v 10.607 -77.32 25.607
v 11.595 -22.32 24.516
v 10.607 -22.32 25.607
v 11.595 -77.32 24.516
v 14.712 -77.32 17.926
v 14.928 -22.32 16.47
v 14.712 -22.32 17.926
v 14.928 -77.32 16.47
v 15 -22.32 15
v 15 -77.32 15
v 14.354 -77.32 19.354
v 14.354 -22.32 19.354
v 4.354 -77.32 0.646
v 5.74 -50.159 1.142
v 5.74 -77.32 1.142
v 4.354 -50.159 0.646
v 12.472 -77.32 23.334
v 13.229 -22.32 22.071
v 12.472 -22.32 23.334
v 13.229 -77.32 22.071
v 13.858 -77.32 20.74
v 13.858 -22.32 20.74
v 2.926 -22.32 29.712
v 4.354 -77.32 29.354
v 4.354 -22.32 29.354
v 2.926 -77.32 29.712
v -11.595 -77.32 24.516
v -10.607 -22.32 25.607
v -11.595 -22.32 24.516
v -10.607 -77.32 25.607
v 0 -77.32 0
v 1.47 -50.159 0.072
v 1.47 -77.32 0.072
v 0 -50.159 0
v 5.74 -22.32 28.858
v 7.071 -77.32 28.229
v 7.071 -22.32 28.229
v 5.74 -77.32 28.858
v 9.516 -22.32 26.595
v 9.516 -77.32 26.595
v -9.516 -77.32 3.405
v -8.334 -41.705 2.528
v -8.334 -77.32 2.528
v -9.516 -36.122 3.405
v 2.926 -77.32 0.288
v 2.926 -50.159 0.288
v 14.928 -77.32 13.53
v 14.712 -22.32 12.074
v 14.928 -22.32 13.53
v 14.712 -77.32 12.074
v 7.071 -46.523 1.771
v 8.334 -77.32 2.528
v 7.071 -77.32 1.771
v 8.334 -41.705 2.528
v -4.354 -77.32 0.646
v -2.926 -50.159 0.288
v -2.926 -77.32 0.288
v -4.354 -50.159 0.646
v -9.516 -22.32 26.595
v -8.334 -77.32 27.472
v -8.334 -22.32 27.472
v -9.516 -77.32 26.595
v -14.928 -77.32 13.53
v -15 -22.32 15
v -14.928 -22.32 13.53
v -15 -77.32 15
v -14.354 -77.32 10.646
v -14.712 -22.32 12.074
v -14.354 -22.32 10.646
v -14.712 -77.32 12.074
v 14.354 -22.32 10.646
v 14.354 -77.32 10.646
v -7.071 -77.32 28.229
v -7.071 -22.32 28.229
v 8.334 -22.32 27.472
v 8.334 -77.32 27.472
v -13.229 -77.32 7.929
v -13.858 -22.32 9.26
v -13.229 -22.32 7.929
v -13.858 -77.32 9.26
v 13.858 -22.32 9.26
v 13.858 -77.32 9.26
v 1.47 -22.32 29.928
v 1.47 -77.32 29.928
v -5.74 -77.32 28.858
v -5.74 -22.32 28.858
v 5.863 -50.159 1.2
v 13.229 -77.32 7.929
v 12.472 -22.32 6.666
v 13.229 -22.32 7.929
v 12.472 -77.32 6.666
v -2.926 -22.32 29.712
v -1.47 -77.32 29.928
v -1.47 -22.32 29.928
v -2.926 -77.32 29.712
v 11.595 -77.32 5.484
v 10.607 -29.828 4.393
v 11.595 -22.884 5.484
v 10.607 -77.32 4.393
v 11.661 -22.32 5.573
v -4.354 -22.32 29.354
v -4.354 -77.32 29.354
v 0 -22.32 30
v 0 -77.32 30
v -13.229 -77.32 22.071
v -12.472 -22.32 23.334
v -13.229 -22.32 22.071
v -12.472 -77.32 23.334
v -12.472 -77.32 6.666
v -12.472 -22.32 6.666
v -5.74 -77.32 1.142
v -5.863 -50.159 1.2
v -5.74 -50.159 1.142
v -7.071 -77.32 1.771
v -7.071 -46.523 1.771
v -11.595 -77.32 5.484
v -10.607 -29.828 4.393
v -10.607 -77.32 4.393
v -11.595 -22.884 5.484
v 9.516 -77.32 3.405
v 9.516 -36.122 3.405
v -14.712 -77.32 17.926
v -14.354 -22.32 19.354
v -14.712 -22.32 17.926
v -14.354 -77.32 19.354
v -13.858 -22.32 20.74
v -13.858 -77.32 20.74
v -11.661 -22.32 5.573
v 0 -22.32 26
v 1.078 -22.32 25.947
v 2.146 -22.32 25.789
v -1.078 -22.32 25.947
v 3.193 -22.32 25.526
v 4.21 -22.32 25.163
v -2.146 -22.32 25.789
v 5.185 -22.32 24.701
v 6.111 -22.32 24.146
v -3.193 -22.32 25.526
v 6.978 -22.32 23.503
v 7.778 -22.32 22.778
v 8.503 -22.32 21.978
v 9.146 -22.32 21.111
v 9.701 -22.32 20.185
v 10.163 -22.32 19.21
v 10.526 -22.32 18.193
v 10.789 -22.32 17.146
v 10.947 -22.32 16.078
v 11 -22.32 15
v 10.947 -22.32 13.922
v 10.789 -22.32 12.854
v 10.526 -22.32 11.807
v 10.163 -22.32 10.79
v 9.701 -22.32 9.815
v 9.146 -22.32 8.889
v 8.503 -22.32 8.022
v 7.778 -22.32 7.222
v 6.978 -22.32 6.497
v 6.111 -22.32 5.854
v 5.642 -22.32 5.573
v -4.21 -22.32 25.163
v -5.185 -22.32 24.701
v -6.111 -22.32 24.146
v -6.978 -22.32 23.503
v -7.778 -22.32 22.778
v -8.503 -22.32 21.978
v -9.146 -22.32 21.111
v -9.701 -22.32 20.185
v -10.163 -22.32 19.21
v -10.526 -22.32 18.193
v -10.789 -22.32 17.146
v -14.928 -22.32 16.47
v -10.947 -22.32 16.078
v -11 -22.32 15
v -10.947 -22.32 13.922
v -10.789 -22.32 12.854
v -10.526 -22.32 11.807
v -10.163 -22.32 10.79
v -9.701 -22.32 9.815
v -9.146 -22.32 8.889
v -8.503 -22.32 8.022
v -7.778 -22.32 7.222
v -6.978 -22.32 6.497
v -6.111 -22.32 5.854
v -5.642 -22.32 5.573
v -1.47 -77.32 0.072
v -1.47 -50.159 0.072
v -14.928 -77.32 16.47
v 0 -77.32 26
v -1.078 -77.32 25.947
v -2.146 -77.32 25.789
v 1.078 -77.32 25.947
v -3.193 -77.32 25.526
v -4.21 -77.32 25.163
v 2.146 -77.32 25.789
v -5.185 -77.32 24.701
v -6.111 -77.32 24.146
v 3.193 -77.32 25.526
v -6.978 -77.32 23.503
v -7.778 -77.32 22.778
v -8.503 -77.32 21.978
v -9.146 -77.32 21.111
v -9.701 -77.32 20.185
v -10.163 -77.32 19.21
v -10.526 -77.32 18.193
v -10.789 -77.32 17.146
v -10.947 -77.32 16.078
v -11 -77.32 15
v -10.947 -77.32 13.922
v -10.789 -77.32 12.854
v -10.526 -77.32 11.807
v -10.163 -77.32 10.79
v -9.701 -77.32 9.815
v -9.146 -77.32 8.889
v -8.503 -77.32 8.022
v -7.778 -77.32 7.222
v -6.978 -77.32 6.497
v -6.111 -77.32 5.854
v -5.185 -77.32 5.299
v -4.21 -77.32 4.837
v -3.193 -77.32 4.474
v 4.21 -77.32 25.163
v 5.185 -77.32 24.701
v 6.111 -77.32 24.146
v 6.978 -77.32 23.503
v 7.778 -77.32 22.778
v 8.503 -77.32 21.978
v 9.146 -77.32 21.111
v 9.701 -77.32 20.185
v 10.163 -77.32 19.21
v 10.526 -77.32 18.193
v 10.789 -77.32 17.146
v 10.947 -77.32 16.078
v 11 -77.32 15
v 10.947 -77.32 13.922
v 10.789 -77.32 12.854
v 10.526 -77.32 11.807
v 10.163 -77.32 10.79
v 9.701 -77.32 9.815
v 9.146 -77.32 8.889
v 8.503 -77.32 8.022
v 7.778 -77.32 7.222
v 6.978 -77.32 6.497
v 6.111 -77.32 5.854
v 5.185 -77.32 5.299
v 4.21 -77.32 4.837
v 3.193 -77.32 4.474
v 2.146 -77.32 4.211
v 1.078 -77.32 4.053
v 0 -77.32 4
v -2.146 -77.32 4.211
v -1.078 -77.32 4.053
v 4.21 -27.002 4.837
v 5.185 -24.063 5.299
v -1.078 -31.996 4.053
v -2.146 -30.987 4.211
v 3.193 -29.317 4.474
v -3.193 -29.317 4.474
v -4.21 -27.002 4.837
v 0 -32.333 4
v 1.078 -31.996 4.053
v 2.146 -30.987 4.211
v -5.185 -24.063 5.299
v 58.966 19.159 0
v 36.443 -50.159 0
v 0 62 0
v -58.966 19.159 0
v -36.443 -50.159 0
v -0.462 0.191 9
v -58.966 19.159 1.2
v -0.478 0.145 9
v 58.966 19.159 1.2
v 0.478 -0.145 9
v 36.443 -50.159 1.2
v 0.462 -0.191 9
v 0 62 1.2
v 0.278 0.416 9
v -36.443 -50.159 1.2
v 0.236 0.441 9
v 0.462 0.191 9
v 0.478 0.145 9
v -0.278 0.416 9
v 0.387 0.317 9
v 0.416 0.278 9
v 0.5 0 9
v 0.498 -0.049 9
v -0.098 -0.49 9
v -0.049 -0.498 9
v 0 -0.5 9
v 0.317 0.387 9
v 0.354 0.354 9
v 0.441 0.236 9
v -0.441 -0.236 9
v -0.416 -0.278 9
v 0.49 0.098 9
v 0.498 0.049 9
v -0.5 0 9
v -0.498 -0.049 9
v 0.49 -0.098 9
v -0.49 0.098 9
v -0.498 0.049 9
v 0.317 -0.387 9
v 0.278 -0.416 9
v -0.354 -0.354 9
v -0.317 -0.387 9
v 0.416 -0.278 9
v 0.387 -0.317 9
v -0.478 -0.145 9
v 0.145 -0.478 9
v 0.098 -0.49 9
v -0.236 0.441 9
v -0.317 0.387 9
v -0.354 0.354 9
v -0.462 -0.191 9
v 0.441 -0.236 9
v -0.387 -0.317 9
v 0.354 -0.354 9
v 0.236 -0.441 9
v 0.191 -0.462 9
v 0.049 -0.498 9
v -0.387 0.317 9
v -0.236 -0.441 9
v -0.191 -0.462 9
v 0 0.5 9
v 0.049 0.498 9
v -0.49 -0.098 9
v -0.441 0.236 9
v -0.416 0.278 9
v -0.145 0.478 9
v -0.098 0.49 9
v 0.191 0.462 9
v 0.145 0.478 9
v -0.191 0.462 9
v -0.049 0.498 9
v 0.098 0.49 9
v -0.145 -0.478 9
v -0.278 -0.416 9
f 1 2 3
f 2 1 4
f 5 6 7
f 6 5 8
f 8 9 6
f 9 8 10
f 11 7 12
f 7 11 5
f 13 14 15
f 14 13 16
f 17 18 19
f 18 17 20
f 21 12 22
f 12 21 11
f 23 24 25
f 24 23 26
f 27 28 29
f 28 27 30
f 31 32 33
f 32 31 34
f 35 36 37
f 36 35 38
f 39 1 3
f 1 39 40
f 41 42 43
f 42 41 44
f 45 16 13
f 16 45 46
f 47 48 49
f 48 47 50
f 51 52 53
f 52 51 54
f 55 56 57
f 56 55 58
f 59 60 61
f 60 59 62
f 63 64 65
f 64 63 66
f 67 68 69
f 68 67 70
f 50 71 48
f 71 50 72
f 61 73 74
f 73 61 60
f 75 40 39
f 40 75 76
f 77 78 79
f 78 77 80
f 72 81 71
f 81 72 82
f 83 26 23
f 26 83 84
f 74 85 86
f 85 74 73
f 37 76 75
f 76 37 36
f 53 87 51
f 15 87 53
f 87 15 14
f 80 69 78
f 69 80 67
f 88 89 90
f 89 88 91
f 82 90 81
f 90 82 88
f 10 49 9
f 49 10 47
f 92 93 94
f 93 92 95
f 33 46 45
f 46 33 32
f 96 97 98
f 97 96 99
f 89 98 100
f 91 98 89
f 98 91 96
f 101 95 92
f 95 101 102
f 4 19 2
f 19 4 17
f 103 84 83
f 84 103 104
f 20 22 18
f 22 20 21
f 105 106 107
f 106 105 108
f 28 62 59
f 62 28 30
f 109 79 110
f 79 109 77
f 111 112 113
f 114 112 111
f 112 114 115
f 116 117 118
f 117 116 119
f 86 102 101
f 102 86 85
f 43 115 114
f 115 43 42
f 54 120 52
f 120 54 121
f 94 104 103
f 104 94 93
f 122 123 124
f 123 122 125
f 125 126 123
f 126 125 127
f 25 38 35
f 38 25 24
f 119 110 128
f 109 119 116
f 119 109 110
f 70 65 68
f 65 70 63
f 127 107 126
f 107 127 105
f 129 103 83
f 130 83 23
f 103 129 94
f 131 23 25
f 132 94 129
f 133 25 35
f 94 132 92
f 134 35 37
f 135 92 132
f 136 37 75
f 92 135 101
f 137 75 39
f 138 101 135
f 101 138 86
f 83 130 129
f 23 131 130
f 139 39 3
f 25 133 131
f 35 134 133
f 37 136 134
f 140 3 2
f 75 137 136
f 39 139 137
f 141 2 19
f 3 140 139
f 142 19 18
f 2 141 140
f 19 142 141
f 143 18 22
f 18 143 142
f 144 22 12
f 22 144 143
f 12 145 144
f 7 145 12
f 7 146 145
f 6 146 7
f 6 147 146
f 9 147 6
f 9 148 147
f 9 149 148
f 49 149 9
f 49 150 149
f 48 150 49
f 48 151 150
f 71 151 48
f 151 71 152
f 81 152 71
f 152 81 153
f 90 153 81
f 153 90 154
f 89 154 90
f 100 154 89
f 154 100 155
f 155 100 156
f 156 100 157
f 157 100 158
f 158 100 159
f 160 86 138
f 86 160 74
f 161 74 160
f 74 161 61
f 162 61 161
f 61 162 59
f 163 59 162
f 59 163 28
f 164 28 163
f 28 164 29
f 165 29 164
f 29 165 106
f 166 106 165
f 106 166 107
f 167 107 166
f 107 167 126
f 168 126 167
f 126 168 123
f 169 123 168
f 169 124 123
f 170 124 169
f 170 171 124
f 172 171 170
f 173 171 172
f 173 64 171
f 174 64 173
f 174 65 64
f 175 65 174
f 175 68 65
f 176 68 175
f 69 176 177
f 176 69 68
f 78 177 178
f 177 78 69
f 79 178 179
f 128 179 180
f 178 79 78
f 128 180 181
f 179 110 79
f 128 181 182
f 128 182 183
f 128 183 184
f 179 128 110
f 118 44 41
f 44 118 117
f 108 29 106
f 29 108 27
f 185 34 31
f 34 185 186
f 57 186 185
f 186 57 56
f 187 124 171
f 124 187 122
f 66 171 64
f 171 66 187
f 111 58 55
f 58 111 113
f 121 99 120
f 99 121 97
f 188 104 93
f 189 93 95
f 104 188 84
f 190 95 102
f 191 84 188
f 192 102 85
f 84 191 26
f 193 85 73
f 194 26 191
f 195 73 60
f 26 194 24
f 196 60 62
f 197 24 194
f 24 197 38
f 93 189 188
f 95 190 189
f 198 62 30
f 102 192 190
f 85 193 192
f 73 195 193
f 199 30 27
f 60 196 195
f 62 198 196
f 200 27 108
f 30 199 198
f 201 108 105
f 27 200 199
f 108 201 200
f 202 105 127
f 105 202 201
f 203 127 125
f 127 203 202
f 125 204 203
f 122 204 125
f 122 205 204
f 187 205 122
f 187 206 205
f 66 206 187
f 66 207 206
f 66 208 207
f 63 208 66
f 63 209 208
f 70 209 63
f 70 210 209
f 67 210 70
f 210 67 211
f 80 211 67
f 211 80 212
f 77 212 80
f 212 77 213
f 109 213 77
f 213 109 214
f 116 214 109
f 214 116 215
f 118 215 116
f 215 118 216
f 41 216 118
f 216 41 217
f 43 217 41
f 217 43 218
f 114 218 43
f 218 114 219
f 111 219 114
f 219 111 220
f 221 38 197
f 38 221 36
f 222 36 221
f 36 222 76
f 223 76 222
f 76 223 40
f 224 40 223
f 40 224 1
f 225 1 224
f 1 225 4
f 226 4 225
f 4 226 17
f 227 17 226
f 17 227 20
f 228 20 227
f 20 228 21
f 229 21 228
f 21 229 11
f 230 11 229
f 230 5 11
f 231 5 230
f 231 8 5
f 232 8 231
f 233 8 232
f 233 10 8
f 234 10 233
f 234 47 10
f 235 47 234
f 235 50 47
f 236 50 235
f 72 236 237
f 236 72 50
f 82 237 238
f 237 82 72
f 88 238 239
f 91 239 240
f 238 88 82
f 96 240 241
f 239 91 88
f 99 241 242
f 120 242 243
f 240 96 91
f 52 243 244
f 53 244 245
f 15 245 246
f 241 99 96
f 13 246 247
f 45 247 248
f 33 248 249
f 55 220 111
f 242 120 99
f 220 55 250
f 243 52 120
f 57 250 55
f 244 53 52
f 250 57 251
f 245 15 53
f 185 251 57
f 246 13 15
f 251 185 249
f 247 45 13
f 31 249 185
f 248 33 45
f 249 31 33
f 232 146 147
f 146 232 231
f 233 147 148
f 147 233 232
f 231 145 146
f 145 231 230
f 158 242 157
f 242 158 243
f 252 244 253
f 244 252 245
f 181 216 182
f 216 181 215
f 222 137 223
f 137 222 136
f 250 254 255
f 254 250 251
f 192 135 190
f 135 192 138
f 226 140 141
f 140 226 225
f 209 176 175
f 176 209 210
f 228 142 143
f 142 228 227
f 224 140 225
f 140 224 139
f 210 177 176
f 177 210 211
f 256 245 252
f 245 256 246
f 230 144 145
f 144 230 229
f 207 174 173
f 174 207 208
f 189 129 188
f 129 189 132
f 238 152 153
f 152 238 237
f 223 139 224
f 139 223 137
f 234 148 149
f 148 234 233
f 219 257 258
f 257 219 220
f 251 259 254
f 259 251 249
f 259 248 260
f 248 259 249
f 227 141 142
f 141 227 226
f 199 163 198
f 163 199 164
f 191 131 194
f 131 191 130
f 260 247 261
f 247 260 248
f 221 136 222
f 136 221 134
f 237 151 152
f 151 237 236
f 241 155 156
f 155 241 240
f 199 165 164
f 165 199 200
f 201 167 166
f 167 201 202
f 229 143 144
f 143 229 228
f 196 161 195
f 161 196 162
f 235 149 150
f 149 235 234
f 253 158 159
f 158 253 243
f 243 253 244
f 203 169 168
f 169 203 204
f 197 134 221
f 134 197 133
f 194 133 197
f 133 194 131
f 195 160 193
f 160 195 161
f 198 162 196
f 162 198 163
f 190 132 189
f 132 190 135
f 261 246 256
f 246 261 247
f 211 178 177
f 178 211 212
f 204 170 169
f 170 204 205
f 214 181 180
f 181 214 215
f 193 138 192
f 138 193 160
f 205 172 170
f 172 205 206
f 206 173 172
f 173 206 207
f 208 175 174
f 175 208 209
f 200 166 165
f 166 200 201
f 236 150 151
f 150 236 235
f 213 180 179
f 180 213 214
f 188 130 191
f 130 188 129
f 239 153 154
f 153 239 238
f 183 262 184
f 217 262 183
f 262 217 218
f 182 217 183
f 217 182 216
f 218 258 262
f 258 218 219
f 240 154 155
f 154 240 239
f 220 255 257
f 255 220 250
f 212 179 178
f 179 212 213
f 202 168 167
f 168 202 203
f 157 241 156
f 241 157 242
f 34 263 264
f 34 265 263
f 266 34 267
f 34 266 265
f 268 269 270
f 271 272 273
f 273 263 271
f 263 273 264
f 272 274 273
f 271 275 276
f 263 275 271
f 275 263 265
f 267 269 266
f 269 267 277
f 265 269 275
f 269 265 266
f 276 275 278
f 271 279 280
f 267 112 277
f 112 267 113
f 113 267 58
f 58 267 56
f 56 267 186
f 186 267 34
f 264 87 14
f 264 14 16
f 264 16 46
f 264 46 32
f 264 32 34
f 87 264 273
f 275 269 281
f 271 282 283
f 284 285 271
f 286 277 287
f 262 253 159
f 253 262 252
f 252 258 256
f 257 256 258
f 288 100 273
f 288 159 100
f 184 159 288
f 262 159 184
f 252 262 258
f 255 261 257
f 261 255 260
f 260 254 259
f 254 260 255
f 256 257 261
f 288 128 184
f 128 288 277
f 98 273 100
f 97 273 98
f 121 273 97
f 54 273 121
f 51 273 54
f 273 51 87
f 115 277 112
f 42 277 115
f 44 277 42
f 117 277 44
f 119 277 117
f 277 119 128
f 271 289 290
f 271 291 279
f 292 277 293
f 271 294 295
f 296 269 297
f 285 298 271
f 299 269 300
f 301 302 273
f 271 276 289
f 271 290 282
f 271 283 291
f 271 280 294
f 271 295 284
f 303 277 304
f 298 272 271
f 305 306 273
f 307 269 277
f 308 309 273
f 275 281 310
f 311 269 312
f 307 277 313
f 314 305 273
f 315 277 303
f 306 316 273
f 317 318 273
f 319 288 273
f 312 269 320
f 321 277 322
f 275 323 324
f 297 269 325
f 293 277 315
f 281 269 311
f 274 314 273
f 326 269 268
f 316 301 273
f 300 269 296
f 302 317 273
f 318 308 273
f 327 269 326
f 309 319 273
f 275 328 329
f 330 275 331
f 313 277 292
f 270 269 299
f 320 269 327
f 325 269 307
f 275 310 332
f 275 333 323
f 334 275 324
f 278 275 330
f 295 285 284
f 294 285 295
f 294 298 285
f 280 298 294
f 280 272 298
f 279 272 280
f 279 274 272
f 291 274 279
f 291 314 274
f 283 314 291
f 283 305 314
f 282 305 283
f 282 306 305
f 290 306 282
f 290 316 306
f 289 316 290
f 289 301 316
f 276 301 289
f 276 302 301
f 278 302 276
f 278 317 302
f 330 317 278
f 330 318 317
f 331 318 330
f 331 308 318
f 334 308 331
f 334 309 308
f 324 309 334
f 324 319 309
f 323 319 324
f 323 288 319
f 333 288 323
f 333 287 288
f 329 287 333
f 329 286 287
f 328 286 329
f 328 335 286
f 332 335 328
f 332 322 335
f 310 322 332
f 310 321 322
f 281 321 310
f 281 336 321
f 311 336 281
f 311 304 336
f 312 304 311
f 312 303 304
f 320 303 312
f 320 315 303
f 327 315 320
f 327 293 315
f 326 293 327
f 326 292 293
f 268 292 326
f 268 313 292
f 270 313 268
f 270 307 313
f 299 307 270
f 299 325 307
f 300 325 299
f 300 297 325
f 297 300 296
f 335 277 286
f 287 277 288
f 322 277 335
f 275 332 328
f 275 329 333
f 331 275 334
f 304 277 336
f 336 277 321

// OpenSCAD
// Impronta 3D — Estrella para la punta del árbol (diseño propio)
// Estrella de 5 puntas con relieve facetado y un tubo atrás que se encastra en la punta del árbol.
// Se imprime acostada (el tubo también queda acostado sobre la cama), sin soportes.

radio      = 62;     // radio de las puntas
interior   = 0.45;   // proporción del radio interior
alto       = 9;      // alto en el centro (facetado)
tubo_ext   = 30;
tubo_int   = 22;     // entra en puntas de árbol de hasta ~2 cm
tubo_largo = 55;
texto      = "IMPRONTA 3D";
$fn = 64;

function estrella(r, k) = [for (i = [0 : 9]) let(a = 90 + i * 36, rr = (i % 2 == 0) ? r : r * k) [rr * cos(a), rr * sin(a)]];

difference() {
    union() {
        // estrella facetada: cada triángulo sube hacia el centro
        hull() { linear_extrude(1.2) polygon(estrella(radio, interior)); translate([0, 0, alto - 0.01]) cylinder(r = 0.5, h = 0.01); }
        // tubo hacia abajo, acostado sobre la cama
        translate([0, -radio * interior * 0.8, 0]) rotate([90, 0, 0])
            translate([0, tubo_ext / 2, 0]) difference() {
                cylinder(d = tubo_ext, h = tubo_largo);
                translate([0, 0, -1]) cylinder(d = tubo_int, h = tubo_largo + 2);
            }
    }
    // aplanar abajo para que apoye en la cama
    translate([-200, -200, -50]) cube([400, 400, 50]);
}
